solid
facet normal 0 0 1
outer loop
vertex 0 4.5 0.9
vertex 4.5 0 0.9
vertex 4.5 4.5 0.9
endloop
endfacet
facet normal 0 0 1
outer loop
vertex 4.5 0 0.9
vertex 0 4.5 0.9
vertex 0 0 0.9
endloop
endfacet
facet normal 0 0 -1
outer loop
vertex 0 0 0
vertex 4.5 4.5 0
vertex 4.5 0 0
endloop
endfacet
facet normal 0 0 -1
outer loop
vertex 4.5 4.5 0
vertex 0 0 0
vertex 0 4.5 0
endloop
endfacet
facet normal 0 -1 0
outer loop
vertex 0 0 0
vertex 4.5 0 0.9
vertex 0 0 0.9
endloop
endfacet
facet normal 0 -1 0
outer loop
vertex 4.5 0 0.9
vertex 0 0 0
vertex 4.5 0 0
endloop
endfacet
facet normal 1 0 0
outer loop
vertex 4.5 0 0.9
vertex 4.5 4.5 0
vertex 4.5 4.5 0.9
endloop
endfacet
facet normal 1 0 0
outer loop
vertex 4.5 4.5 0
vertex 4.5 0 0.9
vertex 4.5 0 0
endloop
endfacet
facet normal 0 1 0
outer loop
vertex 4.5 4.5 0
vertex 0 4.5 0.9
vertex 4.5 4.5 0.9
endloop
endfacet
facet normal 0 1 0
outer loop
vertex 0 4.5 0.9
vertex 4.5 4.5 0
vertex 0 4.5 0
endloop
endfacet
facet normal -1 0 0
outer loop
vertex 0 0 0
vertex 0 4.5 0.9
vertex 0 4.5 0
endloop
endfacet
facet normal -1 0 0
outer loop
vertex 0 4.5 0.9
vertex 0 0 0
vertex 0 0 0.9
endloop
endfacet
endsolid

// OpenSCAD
/* Warning, this is a very basic generator with a lot of approximation 
input data : [VQFN, NNA, 4.5x4.5x0.9mm, 36, , A, C04-01036A]
generated by com.zoubworld.electronics.cad.model3d.Basic
Date : Sun Feb 15 10:50:49 CET 2026
*/

//body
color("black")
translate([0,0,0])
cube([4.5,4.5,0.9], center=false);
